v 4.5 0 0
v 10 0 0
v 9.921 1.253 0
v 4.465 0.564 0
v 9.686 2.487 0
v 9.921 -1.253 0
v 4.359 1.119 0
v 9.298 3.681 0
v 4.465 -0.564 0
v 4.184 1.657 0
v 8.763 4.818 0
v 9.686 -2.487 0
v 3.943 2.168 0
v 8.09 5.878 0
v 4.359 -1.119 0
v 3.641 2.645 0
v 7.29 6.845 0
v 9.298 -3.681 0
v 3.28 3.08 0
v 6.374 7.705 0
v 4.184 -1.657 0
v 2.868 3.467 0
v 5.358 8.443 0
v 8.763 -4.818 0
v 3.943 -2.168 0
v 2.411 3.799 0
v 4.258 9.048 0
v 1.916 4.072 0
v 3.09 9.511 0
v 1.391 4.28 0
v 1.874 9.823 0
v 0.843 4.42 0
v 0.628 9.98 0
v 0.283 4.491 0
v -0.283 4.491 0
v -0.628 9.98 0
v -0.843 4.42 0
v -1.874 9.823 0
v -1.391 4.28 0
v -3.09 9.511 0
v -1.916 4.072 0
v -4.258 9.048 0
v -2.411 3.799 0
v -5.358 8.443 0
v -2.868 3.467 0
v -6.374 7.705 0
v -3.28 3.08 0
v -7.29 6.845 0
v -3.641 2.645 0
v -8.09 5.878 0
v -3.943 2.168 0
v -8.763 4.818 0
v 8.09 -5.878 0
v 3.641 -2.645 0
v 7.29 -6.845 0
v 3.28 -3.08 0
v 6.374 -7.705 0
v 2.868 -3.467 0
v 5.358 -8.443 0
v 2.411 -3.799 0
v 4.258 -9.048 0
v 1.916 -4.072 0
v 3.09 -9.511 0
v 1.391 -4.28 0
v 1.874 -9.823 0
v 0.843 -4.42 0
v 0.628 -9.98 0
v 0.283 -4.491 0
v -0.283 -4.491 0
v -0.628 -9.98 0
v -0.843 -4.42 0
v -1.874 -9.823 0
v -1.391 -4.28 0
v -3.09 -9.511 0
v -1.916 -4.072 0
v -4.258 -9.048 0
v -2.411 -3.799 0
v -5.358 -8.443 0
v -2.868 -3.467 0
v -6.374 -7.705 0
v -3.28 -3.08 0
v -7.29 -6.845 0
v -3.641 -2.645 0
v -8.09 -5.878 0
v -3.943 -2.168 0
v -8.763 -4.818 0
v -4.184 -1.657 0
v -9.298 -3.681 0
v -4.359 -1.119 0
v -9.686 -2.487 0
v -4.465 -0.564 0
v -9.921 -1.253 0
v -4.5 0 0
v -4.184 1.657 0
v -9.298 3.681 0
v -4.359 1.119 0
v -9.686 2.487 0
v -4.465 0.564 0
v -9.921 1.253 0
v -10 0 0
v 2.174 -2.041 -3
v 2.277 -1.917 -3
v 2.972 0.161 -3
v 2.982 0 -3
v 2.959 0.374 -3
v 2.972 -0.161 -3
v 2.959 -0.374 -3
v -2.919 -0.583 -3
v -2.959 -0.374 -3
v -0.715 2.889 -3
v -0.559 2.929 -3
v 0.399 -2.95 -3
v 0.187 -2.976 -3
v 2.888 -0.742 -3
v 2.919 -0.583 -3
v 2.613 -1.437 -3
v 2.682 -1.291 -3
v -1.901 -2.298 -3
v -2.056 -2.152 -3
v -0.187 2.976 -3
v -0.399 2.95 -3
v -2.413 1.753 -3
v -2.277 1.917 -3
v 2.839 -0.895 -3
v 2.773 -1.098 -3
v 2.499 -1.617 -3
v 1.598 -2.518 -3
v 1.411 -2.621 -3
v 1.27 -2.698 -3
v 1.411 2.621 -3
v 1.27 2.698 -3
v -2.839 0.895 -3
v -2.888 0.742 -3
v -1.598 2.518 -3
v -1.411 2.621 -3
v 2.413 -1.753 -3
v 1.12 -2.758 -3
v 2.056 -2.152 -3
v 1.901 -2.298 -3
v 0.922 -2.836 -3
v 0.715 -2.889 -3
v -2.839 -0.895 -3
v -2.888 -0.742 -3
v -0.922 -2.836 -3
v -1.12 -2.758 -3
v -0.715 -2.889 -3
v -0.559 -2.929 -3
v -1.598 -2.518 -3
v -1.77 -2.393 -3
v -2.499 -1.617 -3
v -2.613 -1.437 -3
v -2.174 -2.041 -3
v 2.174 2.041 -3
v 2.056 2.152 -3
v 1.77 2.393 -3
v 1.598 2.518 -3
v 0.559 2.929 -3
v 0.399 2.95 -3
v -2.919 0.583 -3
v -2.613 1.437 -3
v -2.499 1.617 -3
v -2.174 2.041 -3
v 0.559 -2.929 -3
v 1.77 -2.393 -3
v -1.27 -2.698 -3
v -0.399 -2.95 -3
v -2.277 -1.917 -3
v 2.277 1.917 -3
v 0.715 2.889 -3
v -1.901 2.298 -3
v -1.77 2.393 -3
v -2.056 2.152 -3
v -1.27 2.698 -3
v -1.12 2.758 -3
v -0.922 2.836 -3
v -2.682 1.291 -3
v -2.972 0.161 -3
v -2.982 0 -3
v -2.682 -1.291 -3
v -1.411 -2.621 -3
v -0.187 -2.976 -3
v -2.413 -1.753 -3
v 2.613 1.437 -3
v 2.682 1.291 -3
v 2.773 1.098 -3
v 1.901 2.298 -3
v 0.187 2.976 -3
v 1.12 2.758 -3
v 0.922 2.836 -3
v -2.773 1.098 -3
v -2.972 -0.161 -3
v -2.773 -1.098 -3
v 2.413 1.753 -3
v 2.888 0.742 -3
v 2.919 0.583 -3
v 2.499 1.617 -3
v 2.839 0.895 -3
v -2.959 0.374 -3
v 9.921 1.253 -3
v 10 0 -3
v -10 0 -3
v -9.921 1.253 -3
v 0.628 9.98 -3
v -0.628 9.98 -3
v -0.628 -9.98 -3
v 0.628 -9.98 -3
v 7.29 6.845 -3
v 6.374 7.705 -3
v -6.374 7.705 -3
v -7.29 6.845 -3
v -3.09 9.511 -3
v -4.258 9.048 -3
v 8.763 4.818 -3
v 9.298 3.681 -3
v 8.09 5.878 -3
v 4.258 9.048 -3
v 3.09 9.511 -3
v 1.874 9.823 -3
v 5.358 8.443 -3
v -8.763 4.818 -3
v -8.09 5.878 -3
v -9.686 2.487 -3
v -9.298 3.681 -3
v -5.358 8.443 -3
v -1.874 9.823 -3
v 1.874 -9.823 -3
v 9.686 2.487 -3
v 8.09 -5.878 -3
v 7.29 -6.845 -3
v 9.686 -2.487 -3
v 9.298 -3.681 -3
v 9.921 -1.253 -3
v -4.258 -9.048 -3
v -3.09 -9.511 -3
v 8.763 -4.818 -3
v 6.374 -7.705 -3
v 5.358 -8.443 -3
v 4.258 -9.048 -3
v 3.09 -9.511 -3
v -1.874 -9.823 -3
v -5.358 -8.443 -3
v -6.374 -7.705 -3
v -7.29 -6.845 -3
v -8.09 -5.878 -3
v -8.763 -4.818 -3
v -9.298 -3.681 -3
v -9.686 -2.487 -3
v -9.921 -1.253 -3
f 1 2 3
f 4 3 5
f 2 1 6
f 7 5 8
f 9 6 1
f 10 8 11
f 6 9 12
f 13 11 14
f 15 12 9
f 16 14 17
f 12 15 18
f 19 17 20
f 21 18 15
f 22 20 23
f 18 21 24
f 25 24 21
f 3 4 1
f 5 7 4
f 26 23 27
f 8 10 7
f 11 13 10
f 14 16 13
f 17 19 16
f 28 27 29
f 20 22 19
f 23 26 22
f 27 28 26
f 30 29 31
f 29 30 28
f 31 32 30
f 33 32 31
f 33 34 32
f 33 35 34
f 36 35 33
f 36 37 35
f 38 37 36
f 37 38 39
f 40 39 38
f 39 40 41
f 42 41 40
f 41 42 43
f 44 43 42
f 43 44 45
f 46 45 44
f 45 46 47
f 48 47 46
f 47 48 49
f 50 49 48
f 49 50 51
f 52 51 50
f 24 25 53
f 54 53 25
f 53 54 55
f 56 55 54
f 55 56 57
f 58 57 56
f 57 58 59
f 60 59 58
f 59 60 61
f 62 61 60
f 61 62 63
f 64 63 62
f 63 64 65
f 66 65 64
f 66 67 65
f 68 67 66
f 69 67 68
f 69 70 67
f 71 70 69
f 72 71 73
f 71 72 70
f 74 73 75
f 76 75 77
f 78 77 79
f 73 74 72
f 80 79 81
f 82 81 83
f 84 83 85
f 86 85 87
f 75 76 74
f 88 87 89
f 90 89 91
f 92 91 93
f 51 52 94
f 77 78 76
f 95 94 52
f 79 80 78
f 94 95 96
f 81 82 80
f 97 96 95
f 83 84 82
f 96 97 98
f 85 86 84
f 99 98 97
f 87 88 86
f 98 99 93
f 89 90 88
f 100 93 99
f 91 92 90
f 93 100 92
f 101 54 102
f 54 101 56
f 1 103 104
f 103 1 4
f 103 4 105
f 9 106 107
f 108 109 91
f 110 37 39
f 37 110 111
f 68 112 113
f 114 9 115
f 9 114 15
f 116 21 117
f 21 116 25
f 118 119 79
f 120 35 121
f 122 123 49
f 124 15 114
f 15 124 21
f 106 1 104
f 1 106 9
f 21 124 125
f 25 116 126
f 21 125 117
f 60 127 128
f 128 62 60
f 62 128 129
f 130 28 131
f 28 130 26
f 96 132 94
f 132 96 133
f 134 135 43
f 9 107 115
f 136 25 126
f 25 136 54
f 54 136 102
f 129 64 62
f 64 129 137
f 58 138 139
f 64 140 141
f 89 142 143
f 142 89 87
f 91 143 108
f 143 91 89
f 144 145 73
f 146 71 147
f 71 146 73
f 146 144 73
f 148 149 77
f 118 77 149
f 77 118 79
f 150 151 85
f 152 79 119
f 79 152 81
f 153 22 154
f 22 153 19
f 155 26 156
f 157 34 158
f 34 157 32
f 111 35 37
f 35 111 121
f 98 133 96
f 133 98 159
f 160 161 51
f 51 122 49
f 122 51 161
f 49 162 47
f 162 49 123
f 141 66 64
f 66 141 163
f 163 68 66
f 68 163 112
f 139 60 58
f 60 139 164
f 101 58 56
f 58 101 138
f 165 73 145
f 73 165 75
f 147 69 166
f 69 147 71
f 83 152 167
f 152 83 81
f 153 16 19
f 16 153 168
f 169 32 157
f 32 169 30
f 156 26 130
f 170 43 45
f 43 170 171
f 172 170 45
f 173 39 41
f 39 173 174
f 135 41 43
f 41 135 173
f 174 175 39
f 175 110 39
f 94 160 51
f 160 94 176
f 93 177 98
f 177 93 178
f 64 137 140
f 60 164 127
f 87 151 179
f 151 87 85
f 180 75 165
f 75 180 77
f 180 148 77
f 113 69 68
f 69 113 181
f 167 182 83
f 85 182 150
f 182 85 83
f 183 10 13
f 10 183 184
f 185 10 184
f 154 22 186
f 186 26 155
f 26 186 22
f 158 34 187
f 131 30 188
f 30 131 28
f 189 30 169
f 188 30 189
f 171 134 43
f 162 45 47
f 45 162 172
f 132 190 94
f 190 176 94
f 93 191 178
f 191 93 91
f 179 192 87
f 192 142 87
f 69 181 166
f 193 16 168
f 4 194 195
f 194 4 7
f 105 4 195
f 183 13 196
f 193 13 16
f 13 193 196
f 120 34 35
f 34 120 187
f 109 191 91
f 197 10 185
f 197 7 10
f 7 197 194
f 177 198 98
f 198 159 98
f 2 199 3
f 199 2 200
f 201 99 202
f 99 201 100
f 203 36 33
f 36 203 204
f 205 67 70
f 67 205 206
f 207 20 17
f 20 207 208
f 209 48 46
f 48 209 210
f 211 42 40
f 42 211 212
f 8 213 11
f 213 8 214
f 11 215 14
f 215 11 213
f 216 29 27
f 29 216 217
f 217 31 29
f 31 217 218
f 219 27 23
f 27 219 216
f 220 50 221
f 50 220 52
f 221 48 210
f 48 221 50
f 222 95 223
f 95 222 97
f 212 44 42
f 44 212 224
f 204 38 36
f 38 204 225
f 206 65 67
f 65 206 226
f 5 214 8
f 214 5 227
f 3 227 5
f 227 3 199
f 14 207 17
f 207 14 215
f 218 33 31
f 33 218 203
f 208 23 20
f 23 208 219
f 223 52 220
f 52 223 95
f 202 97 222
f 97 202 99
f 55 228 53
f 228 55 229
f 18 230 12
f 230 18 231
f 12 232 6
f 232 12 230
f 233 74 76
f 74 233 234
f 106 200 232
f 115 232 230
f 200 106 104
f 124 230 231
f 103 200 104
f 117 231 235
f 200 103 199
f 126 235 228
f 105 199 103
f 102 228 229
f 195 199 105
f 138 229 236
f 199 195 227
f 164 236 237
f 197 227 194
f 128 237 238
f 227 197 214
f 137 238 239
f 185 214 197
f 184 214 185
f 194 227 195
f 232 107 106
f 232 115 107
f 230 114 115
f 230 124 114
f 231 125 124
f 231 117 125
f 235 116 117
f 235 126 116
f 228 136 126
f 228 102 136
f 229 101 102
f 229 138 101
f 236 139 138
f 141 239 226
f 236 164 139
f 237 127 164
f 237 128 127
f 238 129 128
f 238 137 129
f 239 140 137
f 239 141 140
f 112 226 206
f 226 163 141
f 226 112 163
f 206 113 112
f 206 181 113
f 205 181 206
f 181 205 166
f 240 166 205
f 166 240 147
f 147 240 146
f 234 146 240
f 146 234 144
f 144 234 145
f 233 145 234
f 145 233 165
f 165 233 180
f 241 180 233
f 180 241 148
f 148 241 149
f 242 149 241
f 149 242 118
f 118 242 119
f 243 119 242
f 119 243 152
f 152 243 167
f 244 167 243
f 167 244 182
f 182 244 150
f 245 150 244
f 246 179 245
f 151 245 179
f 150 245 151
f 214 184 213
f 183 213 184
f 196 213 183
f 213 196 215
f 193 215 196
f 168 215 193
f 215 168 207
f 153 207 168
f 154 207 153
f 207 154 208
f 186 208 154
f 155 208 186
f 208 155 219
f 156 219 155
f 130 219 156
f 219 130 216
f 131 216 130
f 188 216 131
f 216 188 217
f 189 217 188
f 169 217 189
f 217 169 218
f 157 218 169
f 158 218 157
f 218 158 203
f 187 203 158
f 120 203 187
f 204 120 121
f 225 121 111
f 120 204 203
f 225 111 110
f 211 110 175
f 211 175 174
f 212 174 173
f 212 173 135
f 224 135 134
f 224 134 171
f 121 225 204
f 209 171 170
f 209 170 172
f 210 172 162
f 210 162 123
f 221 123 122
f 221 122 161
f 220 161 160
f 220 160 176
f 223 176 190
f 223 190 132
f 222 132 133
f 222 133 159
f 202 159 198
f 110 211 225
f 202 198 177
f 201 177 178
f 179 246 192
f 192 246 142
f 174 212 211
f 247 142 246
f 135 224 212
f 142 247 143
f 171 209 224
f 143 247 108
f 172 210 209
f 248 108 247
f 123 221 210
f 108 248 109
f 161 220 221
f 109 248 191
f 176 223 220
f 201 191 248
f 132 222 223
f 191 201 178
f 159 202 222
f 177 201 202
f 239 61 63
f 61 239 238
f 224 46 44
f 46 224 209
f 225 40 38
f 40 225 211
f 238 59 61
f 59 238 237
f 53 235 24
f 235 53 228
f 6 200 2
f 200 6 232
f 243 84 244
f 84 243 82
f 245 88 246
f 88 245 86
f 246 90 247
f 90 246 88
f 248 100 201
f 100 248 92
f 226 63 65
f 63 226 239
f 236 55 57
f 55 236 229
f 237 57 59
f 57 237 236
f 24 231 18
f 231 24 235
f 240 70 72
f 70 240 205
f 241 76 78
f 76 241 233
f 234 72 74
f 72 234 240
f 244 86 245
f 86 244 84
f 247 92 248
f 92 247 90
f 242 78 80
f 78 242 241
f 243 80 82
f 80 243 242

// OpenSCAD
$fn = 50;


difference() {
	union() {
		translate(v = [0, 0, -3.0000000000]) {
			cylinder(h = 3, r = 10.0000000000);
		}
		cylinder(h = 0, r = 16.0000000000);
	}
	union() {
		translate(v = [0, 0, 0]) {
			rotate(a = [0, 0, 0]) {
				difference() {
					union() {
						#translate(v = [0, 0, -3.0000000000]) {
							cylinder(h = 3, r = 2.2500000000);
						}
						#translate(v = [0, 0, -4.2000000000]) {
							cylinder(h = 4.2000000000, r1 = 2.3750000000, r2 = 4.5000000000);
						}
						#translate(v = [0, 0, -3.0000000000]) {
							cylinder(h = 3, r = 2.3750000000);
						}
						#translate(v = [0, 0, -3.0000000000]) {
							cylinder(h = 3, r = 2.2500000000);
						}
					}
					union();
				}
			}
		}
	}
}
